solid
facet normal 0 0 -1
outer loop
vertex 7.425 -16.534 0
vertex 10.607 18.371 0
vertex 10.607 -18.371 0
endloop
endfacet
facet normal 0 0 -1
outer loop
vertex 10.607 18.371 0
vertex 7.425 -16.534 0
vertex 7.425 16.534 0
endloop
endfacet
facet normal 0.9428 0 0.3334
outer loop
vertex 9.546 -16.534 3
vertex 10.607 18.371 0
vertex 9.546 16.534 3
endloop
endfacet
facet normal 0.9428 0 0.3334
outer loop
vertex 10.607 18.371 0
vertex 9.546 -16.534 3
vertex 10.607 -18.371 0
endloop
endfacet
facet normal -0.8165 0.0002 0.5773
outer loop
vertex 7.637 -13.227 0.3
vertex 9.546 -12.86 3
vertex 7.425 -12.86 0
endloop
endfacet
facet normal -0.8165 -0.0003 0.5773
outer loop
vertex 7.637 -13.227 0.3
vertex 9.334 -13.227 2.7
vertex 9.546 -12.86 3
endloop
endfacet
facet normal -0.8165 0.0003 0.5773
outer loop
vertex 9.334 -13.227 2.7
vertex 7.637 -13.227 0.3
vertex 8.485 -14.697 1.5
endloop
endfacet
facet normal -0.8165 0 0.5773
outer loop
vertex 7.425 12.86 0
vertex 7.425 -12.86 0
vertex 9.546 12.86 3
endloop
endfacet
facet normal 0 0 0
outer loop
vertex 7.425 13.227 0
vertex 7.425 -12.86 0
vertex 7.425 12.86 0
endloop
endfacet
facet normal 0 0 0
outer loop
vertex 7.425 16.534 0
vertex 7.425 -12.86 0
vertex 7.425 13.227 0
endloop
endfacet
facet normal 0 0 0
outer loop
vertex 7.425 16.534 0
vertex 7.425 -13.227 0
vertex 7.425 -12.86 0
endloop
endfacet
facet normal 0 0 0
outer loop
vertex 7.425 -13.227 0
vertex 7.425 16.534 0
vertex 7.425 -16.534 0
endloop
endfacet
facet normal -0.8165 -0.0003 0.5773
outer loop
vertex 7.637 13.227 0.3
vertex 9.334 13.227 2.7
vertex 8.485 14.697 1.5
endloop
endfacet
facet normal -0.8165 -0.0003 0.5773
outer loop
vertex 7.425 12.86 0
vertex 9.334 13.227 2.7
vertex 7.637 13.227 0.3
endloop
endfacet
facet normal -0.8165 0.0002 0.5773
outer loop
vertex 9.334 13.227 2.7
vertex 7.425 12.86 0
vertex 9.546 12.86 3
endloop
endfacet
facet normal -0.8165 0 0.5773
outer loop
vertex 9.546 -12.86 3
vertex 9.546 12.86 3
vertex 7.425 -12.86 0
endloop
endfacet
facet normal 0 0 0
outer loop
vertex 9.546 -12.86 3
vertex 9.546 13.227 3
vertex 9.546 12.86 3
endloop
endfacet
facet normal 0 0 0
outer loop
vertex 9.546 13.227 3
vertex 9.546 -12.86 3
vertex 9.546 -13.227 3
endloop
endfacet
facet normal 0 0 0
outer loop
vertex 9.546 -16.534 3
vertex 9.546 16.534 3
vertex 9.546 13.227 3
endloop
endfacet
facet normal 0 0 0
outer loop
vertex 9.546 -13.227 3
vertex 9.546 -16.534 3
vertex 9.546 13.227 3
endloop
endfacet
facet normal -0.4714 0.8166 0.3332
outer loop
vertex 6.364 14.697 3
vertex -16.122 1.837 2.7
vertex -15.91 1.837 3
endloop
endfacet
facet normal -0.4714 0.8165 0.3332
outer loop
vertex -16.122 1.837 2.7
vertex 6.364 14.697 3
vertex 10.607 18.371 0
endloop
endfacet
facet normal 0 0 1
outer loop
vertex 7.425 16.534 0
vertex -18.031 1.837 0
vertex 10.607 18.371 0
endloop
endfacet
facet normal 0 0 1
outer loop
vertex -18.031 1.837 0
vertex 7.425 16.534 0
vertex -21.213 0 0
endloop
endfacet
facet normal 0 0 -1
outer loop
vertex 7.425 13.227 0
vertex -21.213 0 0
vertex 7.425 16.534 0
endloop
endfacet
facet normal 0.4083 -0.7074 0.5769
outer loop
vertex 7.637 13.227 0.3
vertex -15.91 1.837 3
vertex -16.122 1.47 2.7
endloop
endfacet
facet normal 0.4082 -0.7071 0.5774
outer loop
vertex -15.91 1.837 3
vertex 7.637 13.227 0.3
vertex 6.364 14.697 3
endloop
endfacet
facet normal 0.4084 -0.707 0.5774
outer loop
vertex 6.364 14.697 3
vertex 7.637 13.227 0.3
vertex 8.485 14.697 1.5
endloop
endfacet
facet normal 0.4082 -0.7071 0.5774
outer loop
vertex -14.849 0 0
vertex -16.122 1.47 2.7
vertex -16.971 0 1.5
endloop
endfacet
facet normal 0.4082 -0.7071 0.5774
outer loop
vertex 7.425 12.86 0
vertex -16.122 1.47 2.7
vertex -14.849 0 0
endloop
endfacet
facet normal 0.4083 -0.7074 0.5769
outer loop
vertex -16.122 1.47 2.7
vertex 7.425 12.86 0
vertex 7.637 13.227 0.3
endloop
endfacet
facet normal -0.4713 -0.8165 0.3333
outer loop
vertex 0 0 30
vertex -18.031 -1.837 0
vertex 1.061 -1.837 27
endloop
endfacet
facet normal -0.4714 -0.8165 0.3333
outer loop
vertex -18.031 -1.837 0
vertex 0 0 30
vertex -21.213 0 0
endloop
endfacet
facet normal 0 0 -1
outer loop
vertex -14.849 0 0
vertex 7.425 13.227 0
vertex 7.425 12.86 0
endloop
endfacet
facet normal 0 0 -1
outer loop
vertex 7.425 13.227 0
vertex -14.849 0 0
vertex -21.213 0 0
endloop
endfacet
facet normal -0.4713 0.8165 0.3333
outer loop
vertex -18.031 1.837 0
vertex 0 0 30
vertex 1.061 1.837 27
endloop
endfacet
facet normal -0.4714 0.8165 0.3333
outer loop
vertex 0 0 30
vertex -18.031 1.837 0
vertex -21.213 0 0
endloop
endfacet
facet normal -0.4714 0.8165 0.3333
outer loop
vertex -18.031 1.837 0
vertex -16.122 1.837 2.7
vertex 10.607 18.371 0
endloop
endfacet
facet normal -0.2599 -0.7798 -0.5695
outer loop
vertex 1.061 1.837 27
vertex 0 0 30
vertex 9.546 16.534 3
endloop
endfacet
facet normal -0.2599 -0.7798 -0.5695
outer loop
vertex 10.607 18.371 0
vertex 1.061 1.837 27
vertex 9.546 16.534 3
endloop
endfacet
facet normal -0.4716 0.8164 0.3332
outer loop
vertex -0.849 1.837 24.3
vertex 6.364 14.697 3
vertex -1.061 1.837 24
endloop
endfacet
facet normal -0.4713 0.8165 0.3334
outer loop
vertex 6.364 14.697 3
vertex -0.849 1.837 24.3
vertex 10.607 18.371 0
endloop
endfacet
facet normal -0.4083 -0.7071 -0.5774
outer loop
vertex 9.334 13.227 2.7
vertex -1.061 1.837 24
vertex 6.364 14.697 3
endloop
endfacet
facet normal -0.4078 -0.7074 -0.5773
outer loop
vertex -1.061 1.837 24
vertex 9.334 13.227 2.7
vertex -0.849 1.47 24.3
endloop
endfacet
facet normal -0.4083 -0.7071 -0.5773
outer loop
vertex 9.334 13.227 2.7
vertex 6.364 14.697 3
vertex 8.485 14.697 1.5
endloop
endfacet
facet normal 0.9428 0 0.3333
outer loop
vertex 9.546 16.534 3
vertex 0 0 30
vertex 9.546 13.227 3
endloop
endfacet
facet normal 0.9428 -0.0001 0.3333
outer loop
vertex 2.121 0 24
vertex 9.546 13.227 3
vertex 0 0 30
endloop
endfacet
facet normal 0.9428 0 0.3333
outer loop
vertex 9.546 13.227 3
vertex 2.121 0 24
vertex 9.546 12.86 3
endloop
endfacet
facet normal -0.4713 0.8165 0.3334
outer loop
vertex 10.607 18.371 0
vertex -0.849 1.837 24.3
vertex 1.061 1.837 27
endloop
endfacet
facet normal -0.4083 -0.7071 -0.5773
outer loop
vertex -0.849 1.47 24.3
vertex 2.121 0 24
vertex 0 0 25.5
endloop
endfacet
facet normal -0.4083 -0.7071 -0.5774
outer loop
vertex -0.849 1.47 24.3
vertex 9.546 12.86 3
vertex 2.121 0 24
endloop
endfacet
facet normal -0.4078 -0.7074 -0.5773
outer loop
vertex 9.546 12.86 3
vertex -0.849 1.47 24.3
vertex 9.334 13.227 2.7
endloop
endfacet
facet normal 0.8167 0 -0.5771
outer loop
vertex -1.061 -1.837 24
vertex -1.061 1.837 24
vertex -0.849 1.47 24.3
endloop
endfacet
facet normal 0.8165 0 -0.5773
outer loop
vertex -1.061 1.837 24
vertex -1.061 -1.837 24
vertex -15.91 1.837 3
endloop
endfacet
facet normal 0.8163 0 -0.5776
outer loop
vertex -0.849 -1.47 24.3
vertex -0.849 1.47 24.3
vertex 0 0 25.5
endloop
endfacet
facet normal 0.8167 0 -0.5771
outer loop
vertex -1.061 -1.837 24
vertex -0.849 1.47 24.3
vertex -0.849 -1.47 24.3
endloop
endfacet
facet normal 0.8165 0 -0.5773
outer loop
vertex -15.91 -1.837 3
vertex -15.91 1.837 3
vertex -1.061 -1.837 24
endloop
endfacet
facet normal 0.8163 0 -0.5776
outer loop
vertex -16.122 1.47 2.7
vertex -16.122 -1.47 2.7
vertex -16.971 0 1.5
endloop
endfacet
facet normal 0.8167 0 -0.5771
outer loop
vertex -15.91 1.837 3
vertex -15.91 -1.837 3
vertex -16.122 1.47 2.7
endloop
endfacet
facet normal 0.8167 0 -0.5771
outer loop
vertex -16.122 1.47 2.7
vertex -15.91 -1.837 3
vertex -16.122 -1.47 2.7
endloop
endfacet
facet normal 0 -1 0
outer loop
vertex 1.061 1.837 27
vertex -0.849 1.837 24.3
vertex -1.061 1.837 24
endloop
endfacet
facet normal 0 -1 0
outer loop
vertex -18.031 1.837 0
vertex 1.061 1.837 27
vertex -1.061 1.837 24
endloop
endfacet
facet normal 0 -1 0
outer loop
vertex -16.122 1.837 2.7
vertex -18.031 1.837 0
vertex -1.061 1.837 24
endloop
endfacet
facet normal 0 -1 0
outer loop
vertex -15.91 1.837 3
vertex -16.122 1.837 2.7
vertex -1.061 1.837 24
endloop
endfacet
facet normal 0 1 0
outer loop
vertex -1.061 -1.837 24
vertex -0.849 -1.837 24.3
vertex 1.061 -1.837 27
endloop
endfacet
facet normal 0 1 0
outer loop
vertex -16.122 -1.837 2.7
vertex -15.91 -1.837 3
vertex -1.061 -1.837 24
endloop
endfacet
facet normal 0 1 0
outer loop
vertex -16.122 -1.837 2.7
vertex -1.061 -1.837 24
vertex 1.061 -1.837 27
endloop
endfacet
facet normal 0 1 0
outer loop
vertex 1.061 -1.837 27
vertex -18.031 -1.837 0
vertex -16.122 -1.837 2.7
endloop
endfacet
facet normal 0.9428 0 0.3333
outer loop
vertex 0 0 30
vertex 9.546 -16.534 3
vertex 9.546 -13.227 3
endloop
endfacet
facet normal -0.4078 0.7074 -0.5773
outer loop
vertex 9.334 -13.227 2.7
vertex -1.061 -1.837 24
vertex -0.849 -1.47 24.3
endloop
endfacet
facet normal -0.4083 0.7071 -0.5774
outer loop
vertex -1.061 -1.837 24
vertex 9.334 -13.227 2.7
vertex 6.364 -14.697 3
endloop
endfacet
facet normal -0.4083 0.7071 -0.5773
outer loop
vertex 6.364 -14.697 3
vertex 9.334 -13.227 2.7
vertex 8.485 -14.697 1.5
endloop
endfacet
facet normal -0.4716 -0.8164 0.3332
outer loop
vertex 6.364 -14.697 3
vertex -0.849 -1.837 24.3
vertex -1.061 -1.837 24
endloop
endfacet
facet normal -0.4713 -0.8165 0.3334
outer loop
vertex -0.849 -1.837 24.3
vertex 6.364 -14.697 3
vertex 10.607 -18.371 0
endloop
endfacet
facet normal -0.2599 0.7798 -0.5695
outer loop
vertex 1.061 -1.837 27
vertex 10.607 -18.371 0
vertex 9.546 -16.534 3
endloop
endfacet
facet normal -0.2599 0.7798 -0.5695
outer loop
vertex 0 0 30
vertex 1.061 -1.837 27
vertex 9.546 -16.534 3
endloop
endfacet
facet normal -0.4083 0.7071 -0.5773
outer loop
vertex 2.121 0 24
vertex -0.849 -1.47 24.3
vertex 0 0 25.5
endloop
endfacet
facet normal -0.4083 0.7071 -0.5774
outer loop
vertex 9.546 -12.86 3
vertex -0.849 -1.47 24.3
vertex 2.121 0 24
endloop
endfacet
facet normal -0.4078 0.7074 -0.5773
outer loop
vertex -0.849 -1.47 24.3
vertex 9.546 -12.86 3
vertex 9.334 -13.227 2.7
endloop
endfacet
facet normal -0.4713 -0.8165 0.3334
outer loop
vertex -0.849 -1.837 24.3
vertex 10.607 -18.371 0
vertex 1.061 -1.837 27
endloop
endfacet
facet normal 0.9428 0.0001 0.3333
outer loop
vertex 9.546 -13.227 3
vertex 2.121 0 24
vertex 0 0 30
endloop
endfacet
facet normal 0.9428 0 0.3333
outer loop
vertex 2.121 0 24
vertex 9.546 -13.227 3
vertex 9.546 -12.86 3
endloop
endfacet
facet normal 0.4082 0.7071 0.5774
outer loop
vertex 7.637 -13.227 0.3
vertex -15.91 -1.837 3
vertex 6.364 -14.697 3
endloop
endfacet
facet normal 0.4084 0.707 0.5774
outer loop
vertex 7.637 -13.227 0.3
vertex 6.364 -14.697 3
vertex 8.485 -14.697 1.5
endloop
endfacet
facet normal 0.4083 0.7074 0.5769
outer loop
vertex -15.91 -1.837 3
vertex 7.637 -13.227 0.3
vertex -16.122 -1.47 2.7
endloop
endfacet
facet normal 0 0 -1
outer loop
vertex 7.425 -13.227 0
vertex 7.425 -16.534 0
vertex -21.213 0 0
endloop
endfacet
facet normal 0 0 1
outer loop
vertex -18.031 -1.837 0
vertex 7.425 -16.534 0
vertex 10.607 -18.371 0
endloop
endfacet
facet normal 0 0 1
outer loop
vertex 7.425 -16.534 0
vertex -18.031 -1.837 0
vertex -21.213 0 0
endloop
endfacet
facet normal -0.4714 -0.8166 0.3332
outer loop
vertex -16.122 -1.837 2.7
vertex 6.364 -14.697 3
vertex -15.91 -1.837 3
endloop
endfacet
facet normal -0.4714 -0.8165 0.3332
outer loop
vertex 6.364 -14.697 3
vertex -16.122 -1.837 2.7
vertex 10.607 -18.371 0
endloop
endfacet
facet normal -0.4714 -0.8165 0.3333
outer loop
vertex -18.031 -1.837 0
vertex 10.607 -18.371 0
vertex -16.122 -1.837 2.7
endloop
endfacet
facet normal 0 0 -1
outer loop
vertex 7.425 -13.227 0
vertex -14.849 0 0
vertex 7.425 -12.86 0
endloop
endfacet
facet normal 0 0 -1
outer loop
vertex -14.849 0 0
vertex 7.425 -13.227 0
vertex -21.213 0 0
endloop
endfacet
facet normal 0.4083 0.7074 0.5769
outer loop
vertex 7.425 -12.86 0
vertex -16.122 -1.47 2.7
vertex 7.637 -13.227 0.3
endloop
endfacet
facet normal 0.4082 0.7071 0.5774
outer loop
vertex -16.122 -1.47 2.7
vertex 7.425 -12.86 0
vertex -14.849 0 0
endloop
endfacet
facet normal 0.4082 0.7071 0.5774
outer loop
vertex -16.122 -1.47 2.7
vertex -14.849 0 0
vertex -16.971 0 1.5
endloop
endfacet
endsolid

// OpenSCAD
// shape height
sh = 30;
// border width
bw = 3;

include <../polyhedra.scad>;

poly_wire(tetrahedron);
